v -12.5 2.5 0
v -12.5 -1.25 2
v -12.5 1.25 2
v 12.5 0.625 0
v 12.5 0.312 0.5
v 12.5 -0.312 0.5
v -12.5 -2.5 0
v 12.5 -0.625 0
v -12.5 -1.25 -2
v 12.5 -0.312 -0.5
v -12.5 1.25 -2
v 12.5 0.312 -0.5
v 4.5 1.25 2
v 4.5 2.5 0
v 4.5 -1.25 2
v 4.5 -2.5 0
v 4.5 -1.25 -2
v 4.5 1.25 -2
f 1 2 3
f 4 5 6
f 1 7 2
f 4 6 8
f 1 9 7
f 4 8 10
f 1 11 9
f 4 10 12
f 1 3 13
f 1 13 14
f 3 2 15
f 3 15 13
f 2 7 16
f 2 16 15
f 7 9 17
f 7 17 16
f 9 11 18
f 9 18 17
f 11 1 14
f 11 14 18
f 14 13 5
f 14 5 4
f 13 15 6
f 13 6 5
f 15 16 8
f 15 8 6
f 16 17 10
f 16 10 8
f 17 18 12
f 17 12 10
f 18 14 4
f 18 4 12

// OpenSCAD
// mm; head is a tapered envelope, NOT a measured Phillips surface.
// +X points to tip. Endpoint scale is an explicit unmeasured assumption.
polyhedron(points=[[-12.5, 2.5, 0], [-12.5, 1.25, 2.0], [-12.5, -1.25, 2.0], [-12.5, -2.5, 0], [-12.5, -1.25, -2.0], [-12.5, 1.25, -2.0], [4.5, 2.5, 0], [4.5, 1.25, 2.0], [4.5, -1.25, 2.0], [4.5, -2.5, 0], [4.5, -1.25, -2.0], [4.5, 1.25, -2.0], [12.5, 0.625, 0.0], [12.5, 0.3125, 0.5], [12.5, -0.3125, 0.5], [12.5, -0.625, 0.0], [12.5, -0.3125, -0.5], [12.5, 0.3125, -0.5]], faces=[[0, 2, 1], [12, 13, 14], [0, 3, 2], [12, 14, 15], [0, 4, 3], [12, 15, 16], [0, 5, 4], [12, 16, 17], [0, 1, 7], [0, 7, 6], [1, 2, 8], [1, 8, 7], [2, 3, 9], [2, 9, 8], [3, 4, 10], [3, 10, 9], [4, 5, 11], [4, 11, 10], [5, 0, 6], [5, 6, 11], [6, 7, 13], [6, 13, 12], [7, 8, 14], [7, 14, 13], [8, 9, 15], [8, 15, 14], [9, 10, 16], [9, 16, 15], [10, 11, 17], [10, 17, 16], [11, 6, 12], [11, 12, 17]], convexity=10);
